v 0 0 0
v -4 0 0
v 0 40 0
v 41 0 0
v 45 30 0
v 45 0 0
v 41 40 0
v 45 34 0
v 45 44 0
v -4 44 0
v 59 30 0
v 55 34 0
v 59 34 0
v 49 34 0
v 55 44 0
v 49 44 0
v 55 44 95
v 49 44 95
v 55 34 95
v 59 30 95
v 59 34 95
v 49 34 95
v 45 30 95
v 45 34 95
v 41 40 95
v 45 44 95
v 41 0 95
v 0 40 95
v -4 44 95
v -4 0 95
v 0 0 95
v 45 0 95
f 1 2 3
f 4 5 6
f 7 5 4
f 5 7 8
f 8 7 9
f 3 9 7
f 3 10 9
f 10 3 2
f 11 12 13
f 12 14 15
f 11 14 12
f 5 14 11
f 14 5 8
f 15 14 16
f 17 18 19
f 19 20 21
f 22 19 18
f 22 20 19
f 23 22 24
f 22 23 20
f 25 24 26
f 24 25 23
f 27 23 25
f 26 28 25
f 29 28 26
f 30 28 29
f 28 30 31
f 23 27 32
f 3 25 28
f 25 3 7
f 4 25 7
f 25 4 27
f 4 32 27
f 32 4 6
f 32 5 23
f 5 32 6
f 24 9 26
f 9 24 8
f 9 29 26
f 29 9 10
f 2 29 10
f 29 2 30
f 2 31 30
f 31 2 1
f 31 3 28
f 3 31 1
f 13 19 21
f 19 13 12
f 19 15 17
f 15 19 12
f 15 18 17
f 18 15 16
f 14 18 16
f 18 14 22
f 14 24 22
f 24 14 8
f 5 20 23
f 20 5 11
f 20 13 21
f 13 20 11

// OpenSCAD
// Medidas en mm
ancho_tubo    = 41;
alto_tubo     = 40;
alto_enganche = 10;

// Pieza
grosor_pieza = 4;
extrusion = 95;

union() {
    linear_extrude(height = extrusion)
        polygon(points=[
            [0                        , 0                       ],
            [0                        , alto_tubo               ],
            [ancho_tubo               , alto_tubo               ],
            [ancho_tubo               , 0                       ],     
            [ancho_tubo + grosor_pieza, 0                       ],
            [ancho_tubo + grosor_pieza, alto_tubo + grosor_pieza],
            [-grosor_pieza            , alto_tubo + grosor_pieza],
            [-grosor_pieza            , 0                       ]
        ]); 
         
    linear_extrude(height = extrusion)     
        translate([ancho_tubo + grosor_pieza, alto_tubo - alto_enganche + grosor_pieza])
                polygon(points=[
                    [0                           , 0 ],
                    [grosor_pieza                , 0 ], 
                    [grosor_pieza                , alto_enganche], 
                    [alto_enganche               , alto_enganche], 
                    [alto_enganche               , 0 ], 
                    [alto_enganche + grosor_pieza, 0 ], 
                    [alto_enganche + grosor_pieza, -grosor_pieza], 
                    [0                           , -grosor_pieza]
                ]);
} 
 
